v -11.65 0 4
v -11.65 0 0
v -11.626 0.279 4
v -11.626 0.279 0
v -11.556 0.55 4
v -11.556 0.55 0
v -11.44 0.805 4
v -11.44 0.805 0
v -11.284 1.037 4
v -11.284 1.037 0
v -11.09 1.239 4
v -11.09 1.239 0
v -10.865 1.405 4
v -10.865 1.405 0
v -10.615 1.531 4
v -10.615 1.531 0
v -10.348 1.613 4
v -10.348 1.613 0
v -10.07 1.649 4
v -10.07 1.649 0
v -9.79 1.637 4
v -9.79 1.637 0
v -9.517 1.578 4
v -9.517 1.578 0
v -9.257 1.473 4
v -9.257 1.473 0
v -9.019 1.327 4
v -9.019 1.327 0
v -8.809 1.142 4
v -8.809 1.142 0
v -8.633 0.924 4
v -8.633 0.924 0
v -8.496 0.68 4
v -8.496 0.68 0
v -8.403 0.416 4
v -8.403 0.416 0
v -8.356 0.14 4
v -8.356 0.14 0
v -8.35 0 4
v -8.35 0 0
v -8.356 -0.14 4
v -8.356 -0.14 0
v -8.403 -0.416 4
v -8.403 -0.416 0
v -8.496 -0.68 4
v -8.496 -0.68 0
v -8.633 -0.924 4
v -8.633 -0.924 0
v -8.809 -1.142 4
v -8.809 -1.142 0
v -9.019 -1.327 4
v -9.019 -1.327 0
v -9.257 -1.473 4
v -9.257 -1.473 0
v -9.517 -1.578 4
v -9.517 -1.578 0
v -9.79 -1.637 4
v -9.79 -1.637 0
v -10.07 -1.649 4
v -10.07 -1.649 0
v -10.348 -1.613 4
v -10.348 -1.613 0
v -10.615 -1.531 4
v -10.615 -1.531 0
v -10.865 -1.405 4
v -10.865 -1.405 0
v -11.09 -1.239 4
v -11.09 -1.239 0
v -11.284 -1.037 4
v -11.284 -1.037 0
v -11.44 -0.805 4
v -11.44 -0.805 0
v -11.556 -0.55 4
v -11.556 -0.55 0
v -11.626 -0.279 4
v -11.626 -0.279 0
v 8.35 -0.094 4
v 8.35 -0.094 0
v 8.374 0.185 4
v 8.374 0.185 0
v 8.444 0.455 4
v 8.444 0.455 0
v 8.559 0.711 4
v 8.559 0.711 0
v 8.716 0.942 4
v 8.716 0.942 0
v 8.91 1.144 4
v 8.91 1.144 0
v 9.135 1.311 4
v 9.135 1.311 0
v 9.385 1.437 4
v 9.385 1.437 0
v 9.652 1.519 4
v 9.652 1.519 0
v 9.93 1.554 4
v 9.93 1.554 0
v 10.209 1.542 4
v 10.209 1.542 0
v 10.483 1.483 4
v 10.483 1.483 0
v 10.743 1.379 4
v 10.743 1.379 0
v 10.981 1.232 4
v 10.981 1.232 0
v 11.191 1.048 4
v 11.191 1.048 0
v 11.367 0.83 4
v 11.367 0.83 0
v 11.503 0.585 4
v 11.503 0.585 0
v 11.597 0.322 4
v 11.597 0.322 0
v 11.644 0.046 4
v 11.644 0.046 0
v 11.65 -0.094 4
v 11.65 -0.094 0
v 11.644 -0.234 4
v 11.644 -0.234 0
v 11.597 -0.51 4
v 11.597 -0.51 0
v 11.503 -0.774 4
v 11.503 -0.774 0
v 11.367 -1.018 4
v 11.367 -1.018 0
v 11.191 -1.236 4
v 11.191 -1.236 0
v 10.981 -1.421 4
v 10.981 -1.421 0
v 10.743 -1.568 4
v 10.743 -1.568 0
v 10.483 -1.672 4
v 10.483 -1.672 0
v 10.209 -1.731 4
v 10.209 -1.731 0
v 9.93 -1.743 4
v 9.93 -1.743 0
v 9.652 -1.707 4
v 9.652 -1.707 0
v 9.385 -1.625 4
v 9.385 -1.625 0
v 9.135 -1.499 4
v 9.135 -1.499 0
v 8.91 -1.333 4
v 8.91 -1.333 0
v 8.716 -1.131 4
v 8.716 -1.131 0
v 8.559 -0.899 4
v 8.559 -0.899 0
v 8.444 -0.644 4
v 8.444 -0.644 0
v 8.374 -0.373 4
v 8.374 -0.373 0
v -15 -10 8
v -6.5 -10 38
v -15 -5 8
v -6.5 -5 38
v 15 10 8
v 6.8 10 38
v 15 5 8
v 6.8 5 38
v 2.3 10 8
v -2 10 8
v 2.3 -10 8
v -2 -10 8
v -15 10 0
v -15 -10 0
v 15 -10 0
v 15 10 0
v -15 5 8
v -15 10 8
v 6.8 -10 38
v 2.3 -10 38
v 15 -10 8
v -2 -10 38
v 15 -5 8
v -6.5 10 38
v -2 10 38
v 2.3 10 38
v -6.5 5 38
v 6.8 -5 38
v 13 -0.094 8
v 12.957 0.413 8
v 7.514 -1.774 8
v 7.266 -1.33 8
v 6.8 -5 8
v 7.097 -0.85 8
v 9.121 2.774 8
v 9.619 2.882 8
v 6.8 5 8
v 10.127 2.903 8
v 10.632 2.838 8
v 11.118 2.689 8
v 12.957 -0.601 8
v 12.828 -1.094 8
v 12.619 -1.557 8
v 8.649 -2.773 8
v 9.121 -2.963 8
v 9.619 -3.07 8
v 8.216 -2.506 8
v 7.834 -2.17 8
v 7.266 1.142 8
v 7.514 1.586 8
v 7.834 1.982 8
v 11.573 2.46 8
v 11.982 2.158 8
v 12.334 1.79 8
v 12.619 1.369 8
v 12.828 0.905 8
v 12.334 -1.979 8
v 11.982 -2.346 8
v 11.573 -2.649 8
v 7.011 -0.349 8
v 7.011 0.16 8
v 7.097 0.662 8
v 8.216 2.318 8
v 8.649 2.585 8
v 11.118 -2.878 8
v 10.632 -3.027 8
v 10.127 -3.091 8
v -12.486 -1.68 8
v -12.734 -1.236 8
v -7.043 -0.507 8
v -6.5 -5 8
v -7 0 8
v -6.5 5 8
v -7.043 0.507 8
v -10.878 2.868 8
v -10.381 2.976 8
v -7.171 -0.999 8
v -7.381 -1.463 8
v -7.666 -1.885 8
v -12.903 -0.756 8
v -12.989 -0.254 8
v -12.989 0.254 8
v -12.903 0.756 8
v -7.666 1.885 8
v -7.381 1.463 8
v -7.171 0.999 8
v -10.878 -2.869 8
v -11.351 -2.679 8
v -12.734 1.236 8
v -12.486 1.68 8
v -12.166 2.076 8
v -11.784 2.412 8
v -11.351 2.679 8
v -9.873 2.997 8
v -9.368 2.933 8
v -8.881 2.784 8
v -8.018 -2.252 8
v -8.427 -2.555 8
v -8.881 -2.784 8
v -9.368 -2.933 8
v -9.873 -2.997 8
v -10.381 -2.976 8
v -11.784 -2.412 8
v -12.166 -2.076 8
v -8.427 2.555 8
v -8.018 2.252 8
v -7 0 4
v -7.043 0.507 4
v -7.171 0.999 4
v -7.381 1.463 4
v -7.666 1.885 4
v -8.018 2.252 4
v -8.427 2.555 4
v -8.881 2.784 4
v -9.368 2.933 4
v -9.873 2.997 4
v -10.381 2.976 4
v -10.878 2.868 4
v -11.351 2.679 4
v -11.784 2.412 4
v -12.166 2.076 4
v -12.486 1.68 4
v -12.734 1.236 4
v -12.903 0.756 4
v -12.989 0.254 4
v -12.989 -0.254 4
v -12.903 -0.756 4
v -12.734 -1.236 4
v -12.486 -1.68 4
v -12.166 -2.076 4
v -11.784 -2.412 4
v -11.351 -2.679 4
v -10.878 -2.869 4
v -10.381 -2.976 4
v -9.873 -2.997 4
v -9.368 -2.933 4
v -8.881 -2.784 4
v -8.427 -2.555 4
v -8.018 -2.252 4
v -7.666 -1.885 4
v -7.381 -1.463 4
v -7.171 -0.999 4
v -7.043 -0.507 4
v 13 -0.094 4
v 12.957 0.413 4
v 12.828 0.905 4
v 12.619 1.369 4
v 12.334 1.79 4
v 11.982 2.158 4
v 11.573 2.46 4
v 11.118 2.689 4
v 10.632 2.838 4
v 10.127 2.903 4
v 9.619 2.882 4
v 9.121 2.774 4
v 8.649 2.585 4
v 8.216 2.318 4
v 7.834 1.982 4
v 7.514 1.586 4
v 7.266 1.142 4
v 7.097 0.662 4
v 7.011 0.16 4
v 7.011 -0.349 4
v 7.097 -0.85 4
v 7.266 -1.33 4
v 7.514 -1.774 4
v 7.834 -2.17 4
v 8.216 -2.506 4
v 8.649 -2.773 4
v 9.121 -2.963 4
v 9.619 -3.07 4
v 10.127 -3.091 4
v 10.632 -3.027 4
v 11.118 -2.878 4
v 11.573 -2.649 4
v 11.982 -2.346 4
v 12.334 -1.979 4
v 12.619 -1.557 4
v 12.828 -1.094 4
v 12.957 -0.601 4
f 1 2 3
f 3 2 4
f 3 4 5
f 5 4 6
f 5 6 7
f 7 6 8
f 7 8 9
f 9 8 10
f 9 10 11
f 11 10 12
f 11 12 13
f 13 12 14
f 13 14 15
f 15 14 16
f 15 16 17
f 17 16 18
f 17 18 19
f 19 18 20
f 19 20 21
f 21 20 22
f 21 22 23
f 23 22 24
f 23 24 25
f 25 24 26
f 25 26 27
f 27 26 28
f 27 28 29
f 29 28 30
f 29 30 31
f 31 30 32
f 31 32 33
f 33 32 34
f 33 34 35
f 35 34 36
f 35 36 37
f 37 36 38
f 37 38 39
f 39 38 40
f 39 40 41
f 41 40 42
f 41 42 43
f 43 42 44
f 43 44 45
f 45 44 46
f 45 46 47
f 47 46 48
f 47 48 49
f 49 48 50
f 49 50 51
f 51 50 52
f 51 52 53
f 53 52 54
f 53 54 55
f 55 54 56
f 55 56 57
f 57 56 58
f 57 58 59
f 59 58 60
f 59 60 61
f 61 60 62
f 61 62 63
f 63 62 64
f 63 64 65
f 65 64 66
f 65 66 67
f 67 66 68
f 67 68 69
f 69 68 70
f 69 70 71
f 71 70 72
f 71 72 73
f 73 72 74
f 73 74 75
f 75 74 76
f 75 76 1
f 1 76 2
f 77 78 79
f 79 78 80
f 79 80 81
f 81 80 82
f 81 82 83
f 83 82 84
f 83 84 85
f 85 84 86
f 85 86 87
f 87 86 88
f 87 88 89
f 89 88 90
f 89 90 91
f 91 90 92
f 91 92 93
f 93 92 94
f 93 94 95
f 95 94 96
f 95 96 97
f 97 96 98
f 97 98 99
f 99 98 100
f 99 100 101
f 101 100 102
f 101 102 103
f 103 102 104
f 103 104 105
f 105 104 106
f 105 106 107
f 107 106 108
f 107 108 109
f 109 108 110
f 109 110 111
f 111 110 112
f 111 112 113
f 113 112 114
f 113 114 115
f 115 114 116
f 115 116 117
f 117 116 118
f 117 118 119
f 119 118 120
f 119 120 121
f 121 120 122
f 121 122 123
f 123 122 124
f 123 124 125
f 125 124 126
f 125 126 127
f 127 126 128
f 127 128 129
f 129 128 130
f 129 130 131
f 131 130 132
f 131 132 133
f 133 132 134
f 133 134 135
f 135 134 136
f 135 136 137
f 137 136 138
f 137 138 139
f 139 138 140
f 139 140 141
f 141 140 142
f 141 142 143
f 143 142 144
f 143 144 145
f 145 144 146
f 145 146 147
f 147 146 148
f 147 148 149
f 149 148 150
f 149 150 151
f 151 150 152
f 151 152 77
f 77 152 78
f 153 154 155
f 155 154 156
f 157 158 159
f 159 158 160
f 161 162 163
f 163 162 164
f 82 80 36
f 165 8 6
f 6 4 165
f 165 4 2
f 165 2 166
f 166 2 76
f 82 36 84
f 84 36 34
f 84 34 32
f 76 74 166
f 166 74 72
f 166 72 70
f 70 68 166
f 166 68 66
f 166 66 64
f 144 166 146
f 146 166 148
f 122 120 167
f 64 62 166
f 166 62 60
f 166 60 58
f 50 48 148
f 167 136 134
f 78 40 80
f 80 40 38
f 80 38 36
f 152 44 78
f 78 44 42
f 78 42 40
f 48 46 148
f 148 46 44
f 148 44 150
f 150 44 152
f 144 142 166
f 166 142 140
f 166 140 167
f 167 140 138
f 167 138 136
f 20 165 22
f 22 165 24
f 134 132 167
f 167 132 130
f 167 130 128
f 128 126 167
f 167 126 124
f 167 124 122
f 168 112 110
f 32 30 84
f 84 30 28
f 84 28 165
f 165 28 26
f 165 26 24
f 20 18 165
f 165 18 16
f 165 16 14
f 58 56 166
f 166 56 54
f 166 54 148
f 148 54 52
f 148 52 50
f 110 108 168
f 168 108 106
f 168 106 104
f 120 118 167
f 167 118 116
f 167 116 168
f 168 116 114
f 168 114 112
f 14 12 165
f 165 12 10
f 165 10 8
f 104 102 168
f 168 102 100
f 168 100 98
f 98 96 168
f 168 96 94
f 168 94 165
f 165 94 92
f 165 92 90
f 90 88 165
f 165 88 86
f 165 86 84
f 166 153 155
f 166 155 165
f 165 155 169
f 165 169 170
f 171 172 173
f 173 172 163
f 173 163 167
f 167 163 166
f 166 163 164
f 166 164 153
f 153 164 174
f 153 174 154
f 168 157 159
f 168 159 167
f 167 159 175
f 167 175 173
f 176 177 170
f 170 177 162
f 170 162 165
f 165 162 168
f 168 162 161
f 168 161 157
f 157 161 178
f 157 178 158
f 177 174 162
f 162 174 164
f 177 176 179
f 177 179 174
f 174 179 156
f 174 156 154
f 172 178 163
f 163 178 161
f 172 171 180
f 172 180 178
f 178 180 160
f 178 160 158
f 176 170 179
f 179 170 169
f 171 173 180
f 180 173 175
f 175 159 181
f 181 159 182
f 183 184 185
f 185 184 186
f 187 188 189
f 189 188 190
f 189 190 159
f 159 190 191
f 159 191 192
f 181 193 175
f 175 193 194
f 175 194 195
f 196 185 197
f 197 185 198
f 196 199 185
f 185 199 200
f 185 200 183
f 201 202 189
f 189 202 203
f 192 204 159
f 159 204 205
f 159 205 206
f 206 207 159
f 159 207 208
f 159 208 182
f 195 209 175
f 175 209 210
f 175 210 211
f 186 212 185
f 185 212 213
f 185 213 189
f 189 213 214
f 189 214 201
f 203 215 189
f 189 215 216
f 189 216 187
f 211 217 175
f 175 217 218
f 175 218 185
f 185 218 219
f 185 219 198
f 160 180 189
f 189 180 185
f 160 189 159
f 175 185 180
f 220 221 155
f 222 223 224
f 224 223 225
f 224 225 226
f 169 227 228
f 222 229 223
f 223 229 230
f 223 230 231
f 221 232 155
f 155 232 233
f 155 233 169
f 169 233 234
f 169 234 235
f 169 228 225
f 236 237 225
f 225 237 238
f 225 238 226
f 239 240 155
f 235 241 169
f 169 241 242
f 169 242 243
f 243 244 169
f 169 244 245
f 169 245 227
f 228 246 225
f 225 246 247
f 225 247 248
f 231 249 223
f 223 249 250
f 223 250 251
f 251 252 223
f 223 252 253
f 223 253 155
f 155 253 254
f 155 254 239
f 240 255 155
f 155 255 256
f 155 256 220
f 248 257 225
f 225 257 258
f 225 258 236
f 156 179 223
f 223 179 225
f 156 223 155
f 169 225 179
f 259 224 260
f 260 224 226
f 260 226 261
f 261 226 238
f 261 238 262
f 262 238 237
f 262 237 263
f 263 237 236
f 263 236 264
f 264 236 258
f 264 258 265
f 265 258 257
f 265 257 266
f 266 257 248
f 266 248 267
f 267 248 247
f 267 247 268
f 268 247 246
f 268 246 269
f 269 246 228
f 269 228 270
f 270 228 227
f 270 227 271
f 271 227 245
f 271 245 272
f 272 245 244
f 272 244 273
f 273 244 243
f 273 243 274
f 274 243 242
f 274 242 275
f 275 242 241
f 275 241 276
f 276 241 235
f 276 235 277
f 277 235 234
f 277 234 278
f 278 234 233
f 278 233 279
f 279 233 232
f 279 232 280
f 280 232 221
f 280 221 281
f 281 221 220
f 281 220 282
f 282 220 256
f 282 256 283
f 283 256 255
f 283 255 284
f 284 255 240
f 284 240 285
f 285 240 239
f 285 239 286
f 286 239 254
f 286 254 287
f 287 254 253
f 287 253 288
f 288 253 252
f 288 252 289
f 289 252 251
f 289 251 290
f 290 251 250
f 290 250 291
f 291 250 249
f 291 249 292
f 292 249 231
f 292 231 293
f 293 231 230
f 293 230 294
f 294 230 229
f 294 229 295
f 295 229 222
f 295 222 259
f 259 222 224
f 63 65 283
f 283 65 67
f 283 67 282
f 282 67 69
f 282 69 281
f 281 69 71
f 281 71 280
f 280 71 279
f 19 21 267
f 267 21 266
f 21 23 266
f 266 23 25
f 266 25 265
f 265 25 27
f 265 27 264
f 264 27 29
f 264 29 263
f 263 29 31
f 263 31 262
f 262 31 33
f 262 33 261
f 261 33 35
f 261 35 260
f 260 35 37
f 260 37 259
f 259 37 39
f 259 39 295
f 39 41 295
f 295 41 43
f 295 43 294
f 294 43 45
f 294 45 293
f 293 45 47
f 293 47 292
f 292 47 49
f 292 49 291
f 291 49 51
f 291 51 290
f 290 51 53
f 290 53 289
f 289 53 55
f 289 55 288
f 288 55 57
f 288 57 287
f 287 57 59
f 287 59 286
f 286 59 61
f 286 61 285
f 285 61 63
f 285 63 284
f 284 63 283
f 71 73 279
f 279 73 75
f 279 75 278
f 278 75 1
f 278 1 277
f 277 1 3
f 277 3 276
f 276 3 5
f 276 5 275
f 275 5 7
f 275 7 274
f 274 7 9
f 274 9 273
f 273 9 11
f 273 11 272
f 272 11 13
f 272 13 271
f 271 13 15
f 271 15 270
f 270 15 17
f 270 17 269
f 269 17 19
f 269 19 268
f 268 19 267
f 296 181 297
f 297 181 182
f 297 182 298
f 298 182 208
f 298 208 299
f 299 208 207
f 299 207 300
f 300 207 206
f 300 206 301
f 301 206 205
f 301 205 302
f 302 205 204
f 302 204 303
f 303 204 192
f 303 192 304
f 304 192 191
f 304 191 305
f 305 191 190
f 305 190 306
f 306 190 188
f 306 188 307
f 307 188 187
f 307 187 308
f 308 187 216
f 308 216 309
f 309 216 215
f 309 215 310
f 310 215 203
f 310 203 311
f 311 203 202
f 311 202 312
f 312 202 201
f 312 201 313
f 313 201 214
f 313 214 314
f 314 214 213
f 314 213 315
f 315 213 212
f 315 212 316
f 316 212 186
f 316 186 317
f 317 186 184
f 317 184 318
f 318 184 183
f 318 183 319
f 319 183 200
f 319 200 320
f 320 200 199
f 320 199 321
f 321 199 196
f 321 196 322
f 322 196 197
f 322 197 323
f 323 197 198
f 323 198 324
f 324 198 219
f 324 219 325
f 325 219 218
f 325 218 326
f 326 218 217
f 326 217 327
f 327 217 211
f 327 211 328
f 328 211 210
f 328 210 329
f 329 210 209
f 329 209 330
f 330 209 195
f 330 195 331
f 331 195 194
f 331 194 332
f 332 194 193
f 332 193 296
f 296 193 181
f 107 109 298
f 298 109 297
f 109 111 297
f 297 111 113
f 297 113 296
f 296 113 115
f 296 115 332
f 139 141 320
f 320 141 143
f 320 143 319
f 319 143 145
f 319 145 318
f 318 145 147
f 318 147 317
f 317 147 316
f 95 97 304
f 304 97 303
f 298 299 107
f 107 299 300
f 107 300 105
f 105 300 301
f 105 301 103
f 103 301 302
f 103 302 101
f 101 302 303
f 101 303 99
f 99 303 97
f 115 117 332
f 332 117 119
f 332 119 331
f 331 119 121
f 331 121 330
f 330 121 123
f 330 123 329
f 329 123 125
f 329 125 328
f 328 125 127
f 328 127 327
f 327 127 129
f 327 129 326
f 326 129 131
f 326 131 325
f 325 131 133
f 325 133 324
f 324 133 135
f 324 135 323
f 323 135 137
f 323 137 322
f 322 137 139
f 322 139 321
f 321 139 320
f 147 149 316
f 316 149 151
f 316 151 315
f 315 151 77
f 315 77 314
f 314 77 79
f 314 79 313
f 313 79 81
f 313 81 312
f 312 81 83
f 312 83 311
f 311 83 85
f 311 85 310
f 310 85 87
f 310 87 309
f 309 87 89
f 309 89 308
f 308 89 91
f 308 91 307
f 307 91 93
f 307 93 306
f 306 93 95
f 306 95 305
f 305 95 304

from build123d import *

# Parameters (mm, degrees)
SKETCH1_W           = 30
SKETCH1_H           = 20
SKETCH1_R           = 1.65
BOSS_EXTRUDE1_DEPTH = 8
SKETCH3_W           = 4.5
SKETCH3_H           = 20
BOSS_EXTRUDE2_DEPTH = 30
BOSS_EXTRUDE3_DEPTH = 20
SKETCH6_W           = 8.5
SKETCH6_H           = 10
SKETCH6_W_2         = 8.2
CUT_EXTRUDE2_DEPTH  = 30
SKETCH10_R          = 3
CUT_EXTRUDE5_DEPTH  = 4


with BuildPart() as part:
    # Sketch1 → Boss-Extrude1 (new body)
    with BuildSketch(Plane.XY):
        Rectangle(SKETCH1_W, SKETCH1_H)
        with Locations((-10, 0)):
            Circle(SKETCH1_R, mode=Mode.SUBTRACT)
        with Locations((9.999778189, -0.094193404)):
            Circle(SKETCH1_R, mode=Mode.SUBTRACT)
    extrude(amount=BOSS_EXTRUDE1_DEPTH)

    # Sketch3 → Boss-Extrude2 (add)
    with BuildSketch(Plane.XY.offset(8)):
        with Locations((-4.25, 0)):
            Rectangle(SKETCH3_W, SKETCH3_H)
        with Locations((4.55, 0)):
            Rectangle(SKETCH3_W, SKETCH3_H)
    extrude(amount=BOSS_EXTRUDE2_DEPTH)

    # Sketch5 → Boss-Extrude3 (add)
    with BuildSketch(Plane(origin=(0, 10, 0), x_dir=(1, 0, 0), z_dir=(0, 1, 0))):
        Polygon((-15, -8), (-6.5, -38), (-6.5, -8), align=None)
        Polygon((15, -8), (6.8, -8), (6.8, -38), align=None)
    extrude(amount=-BOSS_EXTRUDE3_DEPTH)

    # Sketch6 → Cut-Extrude2 (cut)
    with BuildSketch(Plane.XY.offset(38)):
        with Locations((-10.75, 0)):
            Rectangle(SKETCH6_W, SKETCH6_H)
        with Locations((10.9, 0)):
            Rectangle(SKETCH6_W_2, SKETCH6_H)
    extrude(amount=-CUT_EXTRUDE2_DEPTH, mode=Mode.SUBTRACT)

    # Sketch10 → Cut-Extrude5 (cut)
    with BuildSketch(Plane.XY.offset(8)):
        with Locations((-10, 0)):
            Circle(SKETCH10_R)
        with Locations((9.999778189, -0.094193404)):
            Circle(SKETCH10_R)
    extrude(amount=-CUT_EXTRUDE5_DEPTH, mode=Mode.SUBTRACT)


solid = part.part
